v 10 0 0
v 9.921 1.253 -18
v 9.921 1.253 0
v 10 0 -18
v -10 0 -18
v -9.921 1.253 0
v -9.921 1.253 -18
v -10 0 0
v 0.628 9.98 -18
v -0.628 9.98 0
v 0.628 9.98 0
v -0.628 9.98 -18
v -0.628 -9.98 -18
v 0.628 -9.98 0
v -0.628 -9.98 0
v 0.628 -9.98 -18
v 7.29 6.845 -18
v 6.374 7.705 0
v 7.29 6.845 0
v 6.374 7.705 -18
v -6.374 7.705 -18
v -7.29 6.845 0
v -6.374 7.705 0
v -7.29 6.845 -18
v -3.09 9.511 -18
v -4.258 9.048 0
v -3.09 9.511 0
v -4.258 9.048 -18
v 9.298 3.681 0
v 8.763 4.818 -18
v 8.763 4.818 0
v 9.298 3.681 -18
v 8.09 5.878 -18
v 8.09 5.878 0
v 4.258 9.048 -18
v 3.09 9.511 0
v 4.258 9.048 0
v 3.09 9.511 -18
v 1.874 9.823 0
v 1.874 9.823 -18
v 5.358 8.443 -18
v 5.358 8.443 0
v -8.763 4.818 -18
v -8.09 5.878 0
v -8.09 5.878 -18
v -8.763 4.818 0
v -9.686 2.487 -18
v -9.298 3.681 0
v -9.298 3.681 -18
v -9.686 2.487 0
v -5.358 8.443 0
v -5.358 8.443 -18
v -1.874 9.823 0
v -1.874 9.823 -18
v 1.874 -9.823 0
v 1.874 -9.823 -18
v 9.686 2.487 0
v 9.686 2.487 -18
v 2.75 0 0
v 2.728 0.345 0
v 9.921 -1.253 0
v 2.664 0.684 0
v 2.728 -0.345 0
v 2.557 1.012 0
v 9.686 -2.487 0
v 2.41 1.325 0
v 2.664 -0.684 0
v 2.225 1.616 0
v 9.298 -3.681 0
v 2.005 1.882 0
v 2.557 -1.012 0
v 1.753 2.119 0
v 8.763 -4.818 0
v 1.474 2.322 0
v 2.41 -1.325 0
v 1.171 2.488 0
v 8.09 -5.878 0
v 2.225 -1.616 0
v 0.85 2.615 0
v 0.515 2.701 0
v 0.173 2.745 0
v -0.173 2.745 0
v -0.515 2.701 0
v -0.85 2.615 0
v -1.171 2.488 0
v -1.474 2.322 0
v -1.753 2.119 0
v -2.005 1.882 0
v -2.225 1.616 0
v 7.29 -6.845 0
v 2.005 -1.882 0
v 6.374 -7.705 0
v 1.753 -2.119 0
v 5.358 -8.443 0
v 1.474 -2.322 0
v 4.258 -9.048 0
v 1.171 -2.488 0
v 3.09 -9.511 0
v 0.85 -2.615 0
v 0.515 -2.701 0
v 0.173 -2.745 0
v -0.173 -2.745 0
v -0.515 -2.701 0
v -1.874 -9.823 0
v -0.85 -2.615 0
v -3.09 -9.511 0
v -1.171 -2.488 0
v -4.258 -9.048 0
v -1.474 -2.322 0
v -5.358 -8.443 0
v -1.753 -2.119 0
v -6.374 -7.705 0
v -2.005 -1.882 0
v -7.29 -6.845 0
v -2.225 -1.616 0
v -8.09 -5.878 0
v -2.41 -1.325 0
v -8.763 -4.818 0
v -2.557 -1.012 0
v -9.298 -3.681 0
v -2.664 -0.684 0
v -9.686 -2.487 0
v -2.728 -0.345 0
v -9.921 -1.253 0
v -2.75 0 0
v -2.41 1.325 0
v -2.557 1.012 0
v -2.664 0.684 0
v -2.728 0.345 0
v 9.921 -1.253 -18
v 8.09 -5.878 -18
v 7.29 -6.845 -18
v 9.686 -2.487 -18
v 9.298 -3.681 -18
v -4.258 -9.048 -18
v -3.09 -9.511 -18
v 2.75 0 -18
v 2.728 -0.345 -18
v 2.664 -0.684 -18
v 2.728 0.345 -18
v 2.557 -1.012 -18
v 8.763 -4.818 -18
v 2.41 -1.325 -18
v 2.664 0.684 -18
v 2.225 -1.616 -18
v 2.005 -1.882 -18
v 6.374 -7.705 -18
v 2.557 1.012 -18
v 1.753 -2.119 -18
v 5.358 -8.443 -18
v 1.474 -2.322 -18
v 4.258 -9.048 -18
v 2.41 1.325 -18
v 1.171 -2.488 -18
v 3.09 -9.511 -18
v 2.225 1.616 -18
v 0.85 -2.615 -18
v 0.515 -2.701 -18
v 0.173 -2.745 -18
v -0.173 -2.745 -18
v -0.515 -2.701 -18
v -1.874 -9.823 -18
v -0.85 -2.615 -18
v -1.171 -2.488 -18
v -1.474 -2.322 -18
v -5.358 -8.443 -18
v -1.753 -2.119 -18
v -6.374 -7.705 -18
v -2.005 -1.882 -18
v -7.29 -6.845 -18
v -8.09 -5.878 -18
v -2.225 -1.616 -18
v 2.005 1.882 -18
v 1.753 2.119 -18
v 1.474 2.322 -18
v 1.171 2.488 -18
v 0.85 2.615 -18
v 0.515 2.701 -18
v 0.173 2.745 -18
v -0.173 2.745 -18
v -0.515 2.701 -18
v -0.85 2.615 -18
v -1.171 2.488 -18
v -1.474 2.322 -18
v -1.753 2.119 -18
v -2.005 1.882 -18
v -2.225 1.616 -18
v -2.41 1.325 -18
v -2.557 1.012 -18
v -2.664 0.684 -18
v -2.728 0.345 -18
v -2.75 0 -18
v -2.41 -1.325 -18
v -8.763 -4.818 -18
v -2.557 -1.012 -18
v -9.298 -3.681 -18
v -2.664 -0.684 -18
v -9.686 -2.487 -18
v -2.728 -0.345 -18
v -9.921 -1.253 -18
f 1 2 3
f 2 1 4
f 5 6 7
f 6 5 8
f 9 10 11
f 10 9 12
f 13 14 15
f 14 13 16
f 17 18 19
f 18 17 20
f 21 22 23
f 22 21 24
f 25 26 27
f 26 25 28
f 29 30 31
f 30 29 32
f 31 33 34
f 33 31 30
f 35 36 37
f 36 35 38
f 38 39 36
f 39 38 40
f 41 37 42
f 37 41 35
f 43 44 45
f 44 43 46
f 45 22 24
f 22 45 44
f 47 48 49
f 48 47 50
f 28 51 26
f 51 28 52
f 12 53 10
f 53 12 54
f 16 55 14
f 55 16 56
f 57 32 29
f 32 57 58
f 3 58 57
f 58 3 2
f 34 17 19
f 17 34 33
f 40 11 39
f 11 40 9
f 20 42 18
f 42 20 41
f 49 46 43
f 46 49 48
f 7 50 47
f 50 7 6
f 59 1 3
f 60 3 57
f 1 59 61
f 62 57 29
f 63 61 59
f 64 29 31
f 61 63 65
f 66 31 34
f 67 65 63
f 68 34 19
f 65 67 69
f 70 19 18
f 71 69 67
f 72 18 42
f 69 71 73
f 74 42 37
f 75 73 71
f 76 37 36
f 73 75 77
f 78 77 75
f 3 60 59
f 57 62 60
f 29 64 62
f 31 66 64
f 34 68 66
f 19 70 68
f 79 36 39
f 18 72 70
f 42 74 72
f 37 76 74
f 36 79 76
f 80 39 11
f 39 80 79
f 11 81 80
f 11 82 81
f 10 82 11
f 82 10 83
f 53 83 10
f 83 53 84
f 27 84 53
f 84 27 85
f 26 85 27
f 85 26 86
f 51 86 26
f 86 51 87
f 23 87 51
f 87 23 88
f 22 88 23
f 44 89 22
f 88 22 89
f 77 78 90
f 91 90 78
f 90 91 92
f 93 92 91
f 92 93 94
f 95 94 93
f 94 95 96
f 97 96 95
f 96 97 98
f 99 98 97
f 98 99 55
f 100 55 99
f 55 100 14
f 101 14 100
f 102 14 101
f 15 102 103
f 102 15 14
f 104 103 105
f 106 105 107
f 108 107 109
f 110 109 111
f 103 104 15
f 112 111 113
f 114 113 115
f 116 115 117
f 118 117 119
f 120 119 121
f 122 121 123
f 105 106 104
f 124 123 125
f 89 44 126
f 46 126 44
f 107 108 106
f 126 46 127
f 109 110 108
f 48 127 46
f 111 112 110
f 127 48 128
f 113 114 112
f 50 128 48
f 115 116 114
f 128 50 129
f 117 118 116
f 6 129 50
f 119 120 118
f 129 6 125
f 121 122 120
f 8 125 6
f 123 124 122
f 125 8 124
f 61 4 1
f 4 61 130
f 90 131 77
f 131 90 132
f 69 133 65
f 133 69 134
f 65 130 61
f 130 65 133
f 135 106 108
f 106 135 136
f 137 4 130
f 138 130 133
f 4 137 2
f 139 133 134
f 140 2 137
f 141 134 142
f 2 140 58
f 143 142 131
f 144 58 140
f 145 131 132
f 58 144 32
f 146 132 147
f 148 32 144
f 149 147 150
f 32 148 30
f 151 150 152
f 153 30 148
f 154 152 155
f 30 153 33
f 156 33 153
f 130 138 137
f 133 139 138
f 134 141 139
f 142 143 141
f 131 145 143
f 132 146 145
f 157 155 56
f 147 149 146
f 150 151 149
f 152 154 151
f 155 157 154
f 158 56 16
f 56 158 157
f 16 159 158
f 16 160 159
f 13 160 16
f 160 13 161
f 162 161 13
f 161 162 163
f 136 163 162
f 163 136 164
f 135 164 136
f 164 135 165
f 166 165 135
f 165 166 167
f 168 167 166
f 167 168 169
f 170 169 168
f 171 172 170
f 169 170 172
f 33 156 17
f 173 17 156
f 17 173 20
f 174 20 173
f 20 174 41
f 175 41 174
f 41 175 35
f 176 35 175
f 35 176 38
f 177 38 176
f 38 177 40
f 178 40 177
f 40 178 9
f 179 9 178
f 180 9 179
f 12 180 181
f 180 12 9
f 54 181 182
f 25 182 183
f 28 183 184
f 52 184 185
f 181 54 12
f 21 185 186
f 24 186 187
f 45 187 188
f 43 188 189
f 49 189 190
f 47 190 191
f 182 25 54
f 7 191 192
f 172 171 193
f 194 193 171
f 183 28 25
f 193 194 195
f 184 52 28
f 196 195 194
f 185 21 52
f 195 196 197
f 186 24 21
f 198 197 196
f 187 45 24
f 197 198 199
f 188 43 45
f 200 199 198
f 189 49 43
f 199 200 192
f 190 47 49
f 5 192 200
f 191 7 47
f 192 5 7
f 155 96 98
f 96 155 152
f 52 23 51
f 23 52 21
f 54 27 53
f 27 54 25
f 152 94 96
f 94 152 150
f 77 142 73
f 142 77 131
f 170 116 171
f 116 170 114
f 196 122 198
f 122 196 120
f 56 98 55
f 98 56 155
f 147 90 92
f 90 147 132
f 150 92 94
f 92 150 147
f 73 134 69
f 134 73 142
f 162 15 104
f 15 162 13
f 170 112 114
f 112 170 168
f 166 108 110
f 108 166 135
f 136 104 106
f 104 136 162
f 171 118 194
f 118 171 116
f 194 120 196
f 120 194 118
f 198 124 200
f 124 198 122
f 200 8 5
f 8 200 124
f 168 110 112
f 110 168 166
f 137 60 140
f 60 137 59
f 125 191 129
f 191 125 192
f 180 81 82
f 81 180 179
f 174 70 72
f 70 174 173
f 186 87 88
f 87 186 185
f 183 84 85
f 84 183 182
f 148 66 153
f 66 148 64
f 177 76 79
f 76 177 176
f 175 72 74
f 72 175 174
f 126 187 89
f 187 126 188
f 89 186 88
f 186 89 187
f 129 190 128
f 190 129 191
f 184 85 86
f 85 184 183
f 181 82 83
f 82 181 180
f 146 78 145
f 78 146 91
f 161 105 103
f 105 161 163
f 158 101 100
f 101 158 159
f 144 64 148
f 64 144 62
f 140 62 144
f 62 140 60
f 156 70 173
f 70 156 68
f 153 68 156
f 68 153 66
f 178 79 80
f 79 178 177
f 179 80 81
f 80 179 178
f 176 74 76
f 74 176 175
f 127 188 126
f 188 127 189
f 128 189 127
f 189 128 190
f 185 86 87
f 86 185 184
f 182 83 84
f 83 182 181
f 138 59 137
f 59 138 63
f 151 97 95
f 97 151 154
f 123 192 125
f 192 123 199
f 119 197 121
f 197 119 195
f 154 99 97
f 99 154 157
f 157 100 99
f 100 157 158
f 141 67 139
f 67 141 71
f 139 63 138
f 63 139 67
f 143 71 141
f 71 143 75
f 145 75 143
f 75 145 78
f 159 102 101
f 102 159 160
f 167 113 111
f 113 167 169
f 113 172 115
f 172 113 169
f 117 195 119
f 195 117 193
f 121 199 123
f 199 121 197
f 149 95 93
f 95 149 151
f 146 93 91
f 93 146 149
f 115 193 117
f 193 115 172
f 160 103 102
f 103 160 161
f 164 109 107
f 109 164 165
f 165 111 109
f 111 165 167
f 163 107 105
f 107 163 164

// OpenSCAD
$fn = 50;


difference() {
	union() {
		translate(v = [0, 0, -18.0000000000]) {
			cylinder(h = 18, r = 10.0000000000);
		}
	}
	union() {
		#translate(v = [0, 0, -18]) {
			cylinder(h = 18, r = 2.7500000000);
		}
	}
}
